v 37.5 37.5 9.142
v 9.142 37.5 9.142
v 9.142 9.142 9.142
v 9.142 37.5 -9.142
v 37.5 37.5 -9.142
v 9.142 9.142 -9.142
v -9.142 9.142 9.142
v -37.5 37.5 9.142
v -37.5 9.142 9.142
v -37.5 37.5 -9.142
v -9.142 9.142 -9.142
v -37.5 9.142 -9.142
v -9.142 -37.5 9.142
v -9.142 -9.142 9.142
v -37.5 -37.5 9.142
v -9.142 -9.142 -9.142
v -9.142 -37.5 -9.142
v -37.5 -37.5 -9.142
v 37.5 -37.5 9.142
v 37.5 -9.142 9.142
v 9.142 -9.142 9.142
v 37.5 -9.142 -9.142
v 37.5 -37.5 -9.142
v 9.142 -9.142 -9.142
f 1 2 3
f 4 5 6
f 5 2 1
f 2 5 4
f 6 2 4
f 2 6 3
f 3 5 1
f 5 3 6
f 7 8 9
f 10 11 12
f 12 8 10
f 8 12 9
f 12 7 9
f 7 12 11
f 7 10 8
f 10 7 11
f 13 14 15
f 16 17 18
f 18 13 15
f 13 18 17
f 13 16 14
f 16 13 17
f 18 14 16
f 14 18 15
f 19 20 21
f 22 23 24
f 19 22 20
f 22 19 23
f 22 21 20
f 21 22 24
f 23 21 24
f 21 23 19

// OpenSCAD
// file: def.scad
round_radius = 1.25;
sticker_margin = 3;
sticker_round_radius = 1;
total_size = 75;
base_size = (total_size - round_radius * 4) / (4 + sqrt(2));
cut1_dis = base_size * sqrt(2) / 2;
cut2_dis = base_size * (1 + sqrt(2) / 2);
cut2_corner_dis = base_size * (sqrt(2) / 2 * sqrt(3) + 1 / 3 * sqrt(3));
inf = total_size * 10;
// main file
include <def.scad>

module middle_pick() {
    difference() {
        cube([total_size, total_size, total_size], center = true);
        rotate([0, -90, 0])
            translate([-inf, -inf, -cut1_dis])
                cube([inf * 2, inf * 2, inf]);
        for (vec = [[0, 0, 0], [180, 0, 90]])
            rotate(vec)
                translate([-inf, -inf, cut1_dis])
                    cube([inf * 2, inf * 2, inf]);
        rotate([90, 0, 45])
            translate([-inf, -inf, 0])
                cube([inf * 2, inf * 2, inf]);
    }
}

for (vec = [[0, 0, 0], [0, 0, 90], [0, 0, 180], [0, 0, -90]])
    rotate(vec)
        middle_pick();
